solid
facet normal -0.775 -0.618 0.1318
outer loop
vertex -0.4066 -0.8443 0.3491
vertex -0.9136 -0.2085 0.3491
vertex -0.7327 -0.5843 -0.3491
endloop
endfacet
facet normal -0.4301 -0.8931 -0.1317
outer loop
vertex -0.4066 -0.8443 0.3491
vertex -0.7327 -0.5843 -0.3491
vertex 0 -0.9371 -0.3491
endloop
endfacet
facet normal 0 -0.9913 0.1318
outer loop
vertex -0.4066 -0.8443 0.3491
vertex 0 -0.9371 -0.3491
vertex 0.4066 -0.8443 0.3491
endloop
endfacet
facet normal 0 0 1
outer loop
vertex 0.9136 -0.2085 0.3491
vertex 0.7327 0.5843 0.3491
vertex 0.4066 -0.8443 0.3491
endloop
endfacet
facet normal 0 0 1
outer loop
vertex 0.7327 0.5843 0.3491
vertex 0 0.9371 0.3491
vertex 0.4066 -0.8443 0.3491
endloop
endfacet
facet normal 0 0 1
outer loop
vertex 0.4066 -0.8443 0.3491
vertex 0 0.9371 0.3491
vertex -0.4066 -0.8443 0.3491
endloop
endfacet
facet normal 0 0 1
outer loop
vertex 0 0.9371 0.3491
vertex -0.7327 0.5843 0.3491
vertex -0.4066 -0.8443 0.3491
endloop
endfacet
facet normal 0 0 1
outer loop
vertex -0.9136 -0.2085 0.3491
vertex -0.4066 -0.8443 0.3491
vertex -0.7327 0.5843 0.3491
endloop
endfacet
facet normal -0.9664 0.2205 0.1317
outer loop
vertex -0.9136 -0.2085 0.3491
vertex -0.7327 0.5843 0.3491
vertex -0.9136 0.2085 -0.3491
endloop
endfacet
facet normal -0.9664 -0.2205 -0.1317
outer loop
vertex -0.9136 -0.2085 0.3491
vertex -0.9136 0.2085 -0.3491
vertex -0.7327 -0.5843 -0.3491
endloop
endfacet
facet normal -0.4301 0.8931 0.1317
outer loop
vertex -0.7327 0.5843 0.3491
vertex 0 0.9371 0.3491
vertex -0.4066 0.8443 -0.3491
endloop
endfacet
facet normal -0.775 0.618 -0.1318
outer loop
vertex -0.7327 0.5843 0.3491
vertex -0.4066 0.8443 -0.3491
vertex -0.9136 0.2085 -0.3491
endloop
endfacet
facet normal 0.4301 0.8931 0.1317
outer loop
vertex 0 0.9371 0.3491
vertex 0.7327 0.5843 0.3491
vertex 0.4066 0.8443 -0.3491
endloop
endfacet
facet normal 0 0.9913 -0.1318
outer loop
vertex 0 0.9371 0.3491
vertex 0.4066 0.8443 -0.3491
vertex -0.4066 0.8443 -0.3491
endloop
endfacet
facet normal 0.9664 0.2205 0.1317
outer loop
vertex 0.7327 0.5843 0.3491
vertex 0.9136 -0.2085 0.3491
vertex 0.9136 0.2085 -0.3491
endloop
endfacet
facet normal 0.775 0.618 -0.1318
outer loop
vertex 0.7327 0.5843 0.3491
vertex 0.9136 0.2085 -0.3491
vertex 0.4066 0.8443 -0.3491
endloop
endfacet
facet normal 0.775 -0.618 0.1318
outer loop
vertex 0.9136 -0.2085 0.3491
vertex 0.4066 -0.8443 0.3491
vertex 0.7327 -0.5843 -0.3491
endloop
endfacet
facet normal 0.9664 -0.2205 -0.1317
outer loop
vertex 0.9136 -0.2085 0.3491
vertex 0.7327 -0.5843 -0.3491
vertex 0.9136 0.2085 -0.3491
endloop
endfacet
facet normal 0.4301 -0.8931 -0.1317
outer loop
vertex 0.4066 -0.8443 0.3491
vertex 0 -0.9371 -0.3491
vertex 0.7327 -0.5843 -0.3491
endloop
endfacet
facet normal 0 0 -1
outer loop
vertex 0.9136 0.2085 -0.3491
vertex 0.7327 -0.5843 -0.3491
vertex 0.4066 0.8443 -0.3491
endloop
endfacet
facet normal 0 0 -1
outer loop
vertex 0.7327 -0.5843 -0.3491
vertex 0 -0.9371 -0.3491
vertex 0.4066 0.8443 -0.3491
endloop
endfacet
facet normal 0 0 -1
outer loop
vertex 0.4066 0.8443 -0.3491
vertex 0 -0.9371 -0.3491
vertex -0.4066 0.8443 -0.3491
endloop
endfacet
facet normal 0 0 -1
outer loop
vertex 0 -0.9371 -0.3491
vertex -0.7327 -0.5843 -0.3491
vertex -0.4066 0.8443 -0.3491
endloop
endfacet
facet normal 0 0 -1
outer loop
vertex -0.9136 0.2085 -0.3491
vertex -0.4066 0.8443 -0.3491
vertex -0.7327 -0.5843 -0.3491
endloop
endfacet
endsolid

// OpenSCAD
polyhedron( points = [[-0.406594196150436, -0.844301548016136, 0.349050219211971], [-0.913608865753605, -0.208525261636951, 0.349050219211971], [-0.73265742512899, 0.584274799793545, 0.349050219211971], [5.20006538007797e-11, 0.937104019948963, 0.349050219211971], [0.732657425169627, 0.584274799661971, 0.349050219211971], [0.913608865651865, -0.208525261801023, 0.349050219211971], [0.406594196086147, -0.844301548016136, 0.349050219211971], [-1.10661414256102e-11, -0.93710401995625, -0.349050219221608], [-0.732657425151774, -0.584274799658141, -0.349050219221608], [-0.913608865518476, 0.208525261810491, -0.34905021926136], [-0.406594196112141, 0.844301548125794, -0.349050219195331], [0.406594196102809, 0.844301547754883, -0.3490502192192], [0.913608865801338, 0.208525261673867, -0.349050219165958], [0.732657424962703, -0.584274799684879, -0.349050219198736]], faces = [[0, 1, 8], [0, 8, 7], [0, 7, 6], [0, 6, 5, 4, 3, 2, 1], [1, 2, 9], [1, 9, 8], [2, 3, 10], [2, 10, 9], [3, 4, 11], [3, 11, 10], [4, 5, 12], [4, 12, 11], [5, 6, 13], [5, 13, 12], [6, 7, 13], [7, 8, 9, 10, 11, 12, 13]]);
